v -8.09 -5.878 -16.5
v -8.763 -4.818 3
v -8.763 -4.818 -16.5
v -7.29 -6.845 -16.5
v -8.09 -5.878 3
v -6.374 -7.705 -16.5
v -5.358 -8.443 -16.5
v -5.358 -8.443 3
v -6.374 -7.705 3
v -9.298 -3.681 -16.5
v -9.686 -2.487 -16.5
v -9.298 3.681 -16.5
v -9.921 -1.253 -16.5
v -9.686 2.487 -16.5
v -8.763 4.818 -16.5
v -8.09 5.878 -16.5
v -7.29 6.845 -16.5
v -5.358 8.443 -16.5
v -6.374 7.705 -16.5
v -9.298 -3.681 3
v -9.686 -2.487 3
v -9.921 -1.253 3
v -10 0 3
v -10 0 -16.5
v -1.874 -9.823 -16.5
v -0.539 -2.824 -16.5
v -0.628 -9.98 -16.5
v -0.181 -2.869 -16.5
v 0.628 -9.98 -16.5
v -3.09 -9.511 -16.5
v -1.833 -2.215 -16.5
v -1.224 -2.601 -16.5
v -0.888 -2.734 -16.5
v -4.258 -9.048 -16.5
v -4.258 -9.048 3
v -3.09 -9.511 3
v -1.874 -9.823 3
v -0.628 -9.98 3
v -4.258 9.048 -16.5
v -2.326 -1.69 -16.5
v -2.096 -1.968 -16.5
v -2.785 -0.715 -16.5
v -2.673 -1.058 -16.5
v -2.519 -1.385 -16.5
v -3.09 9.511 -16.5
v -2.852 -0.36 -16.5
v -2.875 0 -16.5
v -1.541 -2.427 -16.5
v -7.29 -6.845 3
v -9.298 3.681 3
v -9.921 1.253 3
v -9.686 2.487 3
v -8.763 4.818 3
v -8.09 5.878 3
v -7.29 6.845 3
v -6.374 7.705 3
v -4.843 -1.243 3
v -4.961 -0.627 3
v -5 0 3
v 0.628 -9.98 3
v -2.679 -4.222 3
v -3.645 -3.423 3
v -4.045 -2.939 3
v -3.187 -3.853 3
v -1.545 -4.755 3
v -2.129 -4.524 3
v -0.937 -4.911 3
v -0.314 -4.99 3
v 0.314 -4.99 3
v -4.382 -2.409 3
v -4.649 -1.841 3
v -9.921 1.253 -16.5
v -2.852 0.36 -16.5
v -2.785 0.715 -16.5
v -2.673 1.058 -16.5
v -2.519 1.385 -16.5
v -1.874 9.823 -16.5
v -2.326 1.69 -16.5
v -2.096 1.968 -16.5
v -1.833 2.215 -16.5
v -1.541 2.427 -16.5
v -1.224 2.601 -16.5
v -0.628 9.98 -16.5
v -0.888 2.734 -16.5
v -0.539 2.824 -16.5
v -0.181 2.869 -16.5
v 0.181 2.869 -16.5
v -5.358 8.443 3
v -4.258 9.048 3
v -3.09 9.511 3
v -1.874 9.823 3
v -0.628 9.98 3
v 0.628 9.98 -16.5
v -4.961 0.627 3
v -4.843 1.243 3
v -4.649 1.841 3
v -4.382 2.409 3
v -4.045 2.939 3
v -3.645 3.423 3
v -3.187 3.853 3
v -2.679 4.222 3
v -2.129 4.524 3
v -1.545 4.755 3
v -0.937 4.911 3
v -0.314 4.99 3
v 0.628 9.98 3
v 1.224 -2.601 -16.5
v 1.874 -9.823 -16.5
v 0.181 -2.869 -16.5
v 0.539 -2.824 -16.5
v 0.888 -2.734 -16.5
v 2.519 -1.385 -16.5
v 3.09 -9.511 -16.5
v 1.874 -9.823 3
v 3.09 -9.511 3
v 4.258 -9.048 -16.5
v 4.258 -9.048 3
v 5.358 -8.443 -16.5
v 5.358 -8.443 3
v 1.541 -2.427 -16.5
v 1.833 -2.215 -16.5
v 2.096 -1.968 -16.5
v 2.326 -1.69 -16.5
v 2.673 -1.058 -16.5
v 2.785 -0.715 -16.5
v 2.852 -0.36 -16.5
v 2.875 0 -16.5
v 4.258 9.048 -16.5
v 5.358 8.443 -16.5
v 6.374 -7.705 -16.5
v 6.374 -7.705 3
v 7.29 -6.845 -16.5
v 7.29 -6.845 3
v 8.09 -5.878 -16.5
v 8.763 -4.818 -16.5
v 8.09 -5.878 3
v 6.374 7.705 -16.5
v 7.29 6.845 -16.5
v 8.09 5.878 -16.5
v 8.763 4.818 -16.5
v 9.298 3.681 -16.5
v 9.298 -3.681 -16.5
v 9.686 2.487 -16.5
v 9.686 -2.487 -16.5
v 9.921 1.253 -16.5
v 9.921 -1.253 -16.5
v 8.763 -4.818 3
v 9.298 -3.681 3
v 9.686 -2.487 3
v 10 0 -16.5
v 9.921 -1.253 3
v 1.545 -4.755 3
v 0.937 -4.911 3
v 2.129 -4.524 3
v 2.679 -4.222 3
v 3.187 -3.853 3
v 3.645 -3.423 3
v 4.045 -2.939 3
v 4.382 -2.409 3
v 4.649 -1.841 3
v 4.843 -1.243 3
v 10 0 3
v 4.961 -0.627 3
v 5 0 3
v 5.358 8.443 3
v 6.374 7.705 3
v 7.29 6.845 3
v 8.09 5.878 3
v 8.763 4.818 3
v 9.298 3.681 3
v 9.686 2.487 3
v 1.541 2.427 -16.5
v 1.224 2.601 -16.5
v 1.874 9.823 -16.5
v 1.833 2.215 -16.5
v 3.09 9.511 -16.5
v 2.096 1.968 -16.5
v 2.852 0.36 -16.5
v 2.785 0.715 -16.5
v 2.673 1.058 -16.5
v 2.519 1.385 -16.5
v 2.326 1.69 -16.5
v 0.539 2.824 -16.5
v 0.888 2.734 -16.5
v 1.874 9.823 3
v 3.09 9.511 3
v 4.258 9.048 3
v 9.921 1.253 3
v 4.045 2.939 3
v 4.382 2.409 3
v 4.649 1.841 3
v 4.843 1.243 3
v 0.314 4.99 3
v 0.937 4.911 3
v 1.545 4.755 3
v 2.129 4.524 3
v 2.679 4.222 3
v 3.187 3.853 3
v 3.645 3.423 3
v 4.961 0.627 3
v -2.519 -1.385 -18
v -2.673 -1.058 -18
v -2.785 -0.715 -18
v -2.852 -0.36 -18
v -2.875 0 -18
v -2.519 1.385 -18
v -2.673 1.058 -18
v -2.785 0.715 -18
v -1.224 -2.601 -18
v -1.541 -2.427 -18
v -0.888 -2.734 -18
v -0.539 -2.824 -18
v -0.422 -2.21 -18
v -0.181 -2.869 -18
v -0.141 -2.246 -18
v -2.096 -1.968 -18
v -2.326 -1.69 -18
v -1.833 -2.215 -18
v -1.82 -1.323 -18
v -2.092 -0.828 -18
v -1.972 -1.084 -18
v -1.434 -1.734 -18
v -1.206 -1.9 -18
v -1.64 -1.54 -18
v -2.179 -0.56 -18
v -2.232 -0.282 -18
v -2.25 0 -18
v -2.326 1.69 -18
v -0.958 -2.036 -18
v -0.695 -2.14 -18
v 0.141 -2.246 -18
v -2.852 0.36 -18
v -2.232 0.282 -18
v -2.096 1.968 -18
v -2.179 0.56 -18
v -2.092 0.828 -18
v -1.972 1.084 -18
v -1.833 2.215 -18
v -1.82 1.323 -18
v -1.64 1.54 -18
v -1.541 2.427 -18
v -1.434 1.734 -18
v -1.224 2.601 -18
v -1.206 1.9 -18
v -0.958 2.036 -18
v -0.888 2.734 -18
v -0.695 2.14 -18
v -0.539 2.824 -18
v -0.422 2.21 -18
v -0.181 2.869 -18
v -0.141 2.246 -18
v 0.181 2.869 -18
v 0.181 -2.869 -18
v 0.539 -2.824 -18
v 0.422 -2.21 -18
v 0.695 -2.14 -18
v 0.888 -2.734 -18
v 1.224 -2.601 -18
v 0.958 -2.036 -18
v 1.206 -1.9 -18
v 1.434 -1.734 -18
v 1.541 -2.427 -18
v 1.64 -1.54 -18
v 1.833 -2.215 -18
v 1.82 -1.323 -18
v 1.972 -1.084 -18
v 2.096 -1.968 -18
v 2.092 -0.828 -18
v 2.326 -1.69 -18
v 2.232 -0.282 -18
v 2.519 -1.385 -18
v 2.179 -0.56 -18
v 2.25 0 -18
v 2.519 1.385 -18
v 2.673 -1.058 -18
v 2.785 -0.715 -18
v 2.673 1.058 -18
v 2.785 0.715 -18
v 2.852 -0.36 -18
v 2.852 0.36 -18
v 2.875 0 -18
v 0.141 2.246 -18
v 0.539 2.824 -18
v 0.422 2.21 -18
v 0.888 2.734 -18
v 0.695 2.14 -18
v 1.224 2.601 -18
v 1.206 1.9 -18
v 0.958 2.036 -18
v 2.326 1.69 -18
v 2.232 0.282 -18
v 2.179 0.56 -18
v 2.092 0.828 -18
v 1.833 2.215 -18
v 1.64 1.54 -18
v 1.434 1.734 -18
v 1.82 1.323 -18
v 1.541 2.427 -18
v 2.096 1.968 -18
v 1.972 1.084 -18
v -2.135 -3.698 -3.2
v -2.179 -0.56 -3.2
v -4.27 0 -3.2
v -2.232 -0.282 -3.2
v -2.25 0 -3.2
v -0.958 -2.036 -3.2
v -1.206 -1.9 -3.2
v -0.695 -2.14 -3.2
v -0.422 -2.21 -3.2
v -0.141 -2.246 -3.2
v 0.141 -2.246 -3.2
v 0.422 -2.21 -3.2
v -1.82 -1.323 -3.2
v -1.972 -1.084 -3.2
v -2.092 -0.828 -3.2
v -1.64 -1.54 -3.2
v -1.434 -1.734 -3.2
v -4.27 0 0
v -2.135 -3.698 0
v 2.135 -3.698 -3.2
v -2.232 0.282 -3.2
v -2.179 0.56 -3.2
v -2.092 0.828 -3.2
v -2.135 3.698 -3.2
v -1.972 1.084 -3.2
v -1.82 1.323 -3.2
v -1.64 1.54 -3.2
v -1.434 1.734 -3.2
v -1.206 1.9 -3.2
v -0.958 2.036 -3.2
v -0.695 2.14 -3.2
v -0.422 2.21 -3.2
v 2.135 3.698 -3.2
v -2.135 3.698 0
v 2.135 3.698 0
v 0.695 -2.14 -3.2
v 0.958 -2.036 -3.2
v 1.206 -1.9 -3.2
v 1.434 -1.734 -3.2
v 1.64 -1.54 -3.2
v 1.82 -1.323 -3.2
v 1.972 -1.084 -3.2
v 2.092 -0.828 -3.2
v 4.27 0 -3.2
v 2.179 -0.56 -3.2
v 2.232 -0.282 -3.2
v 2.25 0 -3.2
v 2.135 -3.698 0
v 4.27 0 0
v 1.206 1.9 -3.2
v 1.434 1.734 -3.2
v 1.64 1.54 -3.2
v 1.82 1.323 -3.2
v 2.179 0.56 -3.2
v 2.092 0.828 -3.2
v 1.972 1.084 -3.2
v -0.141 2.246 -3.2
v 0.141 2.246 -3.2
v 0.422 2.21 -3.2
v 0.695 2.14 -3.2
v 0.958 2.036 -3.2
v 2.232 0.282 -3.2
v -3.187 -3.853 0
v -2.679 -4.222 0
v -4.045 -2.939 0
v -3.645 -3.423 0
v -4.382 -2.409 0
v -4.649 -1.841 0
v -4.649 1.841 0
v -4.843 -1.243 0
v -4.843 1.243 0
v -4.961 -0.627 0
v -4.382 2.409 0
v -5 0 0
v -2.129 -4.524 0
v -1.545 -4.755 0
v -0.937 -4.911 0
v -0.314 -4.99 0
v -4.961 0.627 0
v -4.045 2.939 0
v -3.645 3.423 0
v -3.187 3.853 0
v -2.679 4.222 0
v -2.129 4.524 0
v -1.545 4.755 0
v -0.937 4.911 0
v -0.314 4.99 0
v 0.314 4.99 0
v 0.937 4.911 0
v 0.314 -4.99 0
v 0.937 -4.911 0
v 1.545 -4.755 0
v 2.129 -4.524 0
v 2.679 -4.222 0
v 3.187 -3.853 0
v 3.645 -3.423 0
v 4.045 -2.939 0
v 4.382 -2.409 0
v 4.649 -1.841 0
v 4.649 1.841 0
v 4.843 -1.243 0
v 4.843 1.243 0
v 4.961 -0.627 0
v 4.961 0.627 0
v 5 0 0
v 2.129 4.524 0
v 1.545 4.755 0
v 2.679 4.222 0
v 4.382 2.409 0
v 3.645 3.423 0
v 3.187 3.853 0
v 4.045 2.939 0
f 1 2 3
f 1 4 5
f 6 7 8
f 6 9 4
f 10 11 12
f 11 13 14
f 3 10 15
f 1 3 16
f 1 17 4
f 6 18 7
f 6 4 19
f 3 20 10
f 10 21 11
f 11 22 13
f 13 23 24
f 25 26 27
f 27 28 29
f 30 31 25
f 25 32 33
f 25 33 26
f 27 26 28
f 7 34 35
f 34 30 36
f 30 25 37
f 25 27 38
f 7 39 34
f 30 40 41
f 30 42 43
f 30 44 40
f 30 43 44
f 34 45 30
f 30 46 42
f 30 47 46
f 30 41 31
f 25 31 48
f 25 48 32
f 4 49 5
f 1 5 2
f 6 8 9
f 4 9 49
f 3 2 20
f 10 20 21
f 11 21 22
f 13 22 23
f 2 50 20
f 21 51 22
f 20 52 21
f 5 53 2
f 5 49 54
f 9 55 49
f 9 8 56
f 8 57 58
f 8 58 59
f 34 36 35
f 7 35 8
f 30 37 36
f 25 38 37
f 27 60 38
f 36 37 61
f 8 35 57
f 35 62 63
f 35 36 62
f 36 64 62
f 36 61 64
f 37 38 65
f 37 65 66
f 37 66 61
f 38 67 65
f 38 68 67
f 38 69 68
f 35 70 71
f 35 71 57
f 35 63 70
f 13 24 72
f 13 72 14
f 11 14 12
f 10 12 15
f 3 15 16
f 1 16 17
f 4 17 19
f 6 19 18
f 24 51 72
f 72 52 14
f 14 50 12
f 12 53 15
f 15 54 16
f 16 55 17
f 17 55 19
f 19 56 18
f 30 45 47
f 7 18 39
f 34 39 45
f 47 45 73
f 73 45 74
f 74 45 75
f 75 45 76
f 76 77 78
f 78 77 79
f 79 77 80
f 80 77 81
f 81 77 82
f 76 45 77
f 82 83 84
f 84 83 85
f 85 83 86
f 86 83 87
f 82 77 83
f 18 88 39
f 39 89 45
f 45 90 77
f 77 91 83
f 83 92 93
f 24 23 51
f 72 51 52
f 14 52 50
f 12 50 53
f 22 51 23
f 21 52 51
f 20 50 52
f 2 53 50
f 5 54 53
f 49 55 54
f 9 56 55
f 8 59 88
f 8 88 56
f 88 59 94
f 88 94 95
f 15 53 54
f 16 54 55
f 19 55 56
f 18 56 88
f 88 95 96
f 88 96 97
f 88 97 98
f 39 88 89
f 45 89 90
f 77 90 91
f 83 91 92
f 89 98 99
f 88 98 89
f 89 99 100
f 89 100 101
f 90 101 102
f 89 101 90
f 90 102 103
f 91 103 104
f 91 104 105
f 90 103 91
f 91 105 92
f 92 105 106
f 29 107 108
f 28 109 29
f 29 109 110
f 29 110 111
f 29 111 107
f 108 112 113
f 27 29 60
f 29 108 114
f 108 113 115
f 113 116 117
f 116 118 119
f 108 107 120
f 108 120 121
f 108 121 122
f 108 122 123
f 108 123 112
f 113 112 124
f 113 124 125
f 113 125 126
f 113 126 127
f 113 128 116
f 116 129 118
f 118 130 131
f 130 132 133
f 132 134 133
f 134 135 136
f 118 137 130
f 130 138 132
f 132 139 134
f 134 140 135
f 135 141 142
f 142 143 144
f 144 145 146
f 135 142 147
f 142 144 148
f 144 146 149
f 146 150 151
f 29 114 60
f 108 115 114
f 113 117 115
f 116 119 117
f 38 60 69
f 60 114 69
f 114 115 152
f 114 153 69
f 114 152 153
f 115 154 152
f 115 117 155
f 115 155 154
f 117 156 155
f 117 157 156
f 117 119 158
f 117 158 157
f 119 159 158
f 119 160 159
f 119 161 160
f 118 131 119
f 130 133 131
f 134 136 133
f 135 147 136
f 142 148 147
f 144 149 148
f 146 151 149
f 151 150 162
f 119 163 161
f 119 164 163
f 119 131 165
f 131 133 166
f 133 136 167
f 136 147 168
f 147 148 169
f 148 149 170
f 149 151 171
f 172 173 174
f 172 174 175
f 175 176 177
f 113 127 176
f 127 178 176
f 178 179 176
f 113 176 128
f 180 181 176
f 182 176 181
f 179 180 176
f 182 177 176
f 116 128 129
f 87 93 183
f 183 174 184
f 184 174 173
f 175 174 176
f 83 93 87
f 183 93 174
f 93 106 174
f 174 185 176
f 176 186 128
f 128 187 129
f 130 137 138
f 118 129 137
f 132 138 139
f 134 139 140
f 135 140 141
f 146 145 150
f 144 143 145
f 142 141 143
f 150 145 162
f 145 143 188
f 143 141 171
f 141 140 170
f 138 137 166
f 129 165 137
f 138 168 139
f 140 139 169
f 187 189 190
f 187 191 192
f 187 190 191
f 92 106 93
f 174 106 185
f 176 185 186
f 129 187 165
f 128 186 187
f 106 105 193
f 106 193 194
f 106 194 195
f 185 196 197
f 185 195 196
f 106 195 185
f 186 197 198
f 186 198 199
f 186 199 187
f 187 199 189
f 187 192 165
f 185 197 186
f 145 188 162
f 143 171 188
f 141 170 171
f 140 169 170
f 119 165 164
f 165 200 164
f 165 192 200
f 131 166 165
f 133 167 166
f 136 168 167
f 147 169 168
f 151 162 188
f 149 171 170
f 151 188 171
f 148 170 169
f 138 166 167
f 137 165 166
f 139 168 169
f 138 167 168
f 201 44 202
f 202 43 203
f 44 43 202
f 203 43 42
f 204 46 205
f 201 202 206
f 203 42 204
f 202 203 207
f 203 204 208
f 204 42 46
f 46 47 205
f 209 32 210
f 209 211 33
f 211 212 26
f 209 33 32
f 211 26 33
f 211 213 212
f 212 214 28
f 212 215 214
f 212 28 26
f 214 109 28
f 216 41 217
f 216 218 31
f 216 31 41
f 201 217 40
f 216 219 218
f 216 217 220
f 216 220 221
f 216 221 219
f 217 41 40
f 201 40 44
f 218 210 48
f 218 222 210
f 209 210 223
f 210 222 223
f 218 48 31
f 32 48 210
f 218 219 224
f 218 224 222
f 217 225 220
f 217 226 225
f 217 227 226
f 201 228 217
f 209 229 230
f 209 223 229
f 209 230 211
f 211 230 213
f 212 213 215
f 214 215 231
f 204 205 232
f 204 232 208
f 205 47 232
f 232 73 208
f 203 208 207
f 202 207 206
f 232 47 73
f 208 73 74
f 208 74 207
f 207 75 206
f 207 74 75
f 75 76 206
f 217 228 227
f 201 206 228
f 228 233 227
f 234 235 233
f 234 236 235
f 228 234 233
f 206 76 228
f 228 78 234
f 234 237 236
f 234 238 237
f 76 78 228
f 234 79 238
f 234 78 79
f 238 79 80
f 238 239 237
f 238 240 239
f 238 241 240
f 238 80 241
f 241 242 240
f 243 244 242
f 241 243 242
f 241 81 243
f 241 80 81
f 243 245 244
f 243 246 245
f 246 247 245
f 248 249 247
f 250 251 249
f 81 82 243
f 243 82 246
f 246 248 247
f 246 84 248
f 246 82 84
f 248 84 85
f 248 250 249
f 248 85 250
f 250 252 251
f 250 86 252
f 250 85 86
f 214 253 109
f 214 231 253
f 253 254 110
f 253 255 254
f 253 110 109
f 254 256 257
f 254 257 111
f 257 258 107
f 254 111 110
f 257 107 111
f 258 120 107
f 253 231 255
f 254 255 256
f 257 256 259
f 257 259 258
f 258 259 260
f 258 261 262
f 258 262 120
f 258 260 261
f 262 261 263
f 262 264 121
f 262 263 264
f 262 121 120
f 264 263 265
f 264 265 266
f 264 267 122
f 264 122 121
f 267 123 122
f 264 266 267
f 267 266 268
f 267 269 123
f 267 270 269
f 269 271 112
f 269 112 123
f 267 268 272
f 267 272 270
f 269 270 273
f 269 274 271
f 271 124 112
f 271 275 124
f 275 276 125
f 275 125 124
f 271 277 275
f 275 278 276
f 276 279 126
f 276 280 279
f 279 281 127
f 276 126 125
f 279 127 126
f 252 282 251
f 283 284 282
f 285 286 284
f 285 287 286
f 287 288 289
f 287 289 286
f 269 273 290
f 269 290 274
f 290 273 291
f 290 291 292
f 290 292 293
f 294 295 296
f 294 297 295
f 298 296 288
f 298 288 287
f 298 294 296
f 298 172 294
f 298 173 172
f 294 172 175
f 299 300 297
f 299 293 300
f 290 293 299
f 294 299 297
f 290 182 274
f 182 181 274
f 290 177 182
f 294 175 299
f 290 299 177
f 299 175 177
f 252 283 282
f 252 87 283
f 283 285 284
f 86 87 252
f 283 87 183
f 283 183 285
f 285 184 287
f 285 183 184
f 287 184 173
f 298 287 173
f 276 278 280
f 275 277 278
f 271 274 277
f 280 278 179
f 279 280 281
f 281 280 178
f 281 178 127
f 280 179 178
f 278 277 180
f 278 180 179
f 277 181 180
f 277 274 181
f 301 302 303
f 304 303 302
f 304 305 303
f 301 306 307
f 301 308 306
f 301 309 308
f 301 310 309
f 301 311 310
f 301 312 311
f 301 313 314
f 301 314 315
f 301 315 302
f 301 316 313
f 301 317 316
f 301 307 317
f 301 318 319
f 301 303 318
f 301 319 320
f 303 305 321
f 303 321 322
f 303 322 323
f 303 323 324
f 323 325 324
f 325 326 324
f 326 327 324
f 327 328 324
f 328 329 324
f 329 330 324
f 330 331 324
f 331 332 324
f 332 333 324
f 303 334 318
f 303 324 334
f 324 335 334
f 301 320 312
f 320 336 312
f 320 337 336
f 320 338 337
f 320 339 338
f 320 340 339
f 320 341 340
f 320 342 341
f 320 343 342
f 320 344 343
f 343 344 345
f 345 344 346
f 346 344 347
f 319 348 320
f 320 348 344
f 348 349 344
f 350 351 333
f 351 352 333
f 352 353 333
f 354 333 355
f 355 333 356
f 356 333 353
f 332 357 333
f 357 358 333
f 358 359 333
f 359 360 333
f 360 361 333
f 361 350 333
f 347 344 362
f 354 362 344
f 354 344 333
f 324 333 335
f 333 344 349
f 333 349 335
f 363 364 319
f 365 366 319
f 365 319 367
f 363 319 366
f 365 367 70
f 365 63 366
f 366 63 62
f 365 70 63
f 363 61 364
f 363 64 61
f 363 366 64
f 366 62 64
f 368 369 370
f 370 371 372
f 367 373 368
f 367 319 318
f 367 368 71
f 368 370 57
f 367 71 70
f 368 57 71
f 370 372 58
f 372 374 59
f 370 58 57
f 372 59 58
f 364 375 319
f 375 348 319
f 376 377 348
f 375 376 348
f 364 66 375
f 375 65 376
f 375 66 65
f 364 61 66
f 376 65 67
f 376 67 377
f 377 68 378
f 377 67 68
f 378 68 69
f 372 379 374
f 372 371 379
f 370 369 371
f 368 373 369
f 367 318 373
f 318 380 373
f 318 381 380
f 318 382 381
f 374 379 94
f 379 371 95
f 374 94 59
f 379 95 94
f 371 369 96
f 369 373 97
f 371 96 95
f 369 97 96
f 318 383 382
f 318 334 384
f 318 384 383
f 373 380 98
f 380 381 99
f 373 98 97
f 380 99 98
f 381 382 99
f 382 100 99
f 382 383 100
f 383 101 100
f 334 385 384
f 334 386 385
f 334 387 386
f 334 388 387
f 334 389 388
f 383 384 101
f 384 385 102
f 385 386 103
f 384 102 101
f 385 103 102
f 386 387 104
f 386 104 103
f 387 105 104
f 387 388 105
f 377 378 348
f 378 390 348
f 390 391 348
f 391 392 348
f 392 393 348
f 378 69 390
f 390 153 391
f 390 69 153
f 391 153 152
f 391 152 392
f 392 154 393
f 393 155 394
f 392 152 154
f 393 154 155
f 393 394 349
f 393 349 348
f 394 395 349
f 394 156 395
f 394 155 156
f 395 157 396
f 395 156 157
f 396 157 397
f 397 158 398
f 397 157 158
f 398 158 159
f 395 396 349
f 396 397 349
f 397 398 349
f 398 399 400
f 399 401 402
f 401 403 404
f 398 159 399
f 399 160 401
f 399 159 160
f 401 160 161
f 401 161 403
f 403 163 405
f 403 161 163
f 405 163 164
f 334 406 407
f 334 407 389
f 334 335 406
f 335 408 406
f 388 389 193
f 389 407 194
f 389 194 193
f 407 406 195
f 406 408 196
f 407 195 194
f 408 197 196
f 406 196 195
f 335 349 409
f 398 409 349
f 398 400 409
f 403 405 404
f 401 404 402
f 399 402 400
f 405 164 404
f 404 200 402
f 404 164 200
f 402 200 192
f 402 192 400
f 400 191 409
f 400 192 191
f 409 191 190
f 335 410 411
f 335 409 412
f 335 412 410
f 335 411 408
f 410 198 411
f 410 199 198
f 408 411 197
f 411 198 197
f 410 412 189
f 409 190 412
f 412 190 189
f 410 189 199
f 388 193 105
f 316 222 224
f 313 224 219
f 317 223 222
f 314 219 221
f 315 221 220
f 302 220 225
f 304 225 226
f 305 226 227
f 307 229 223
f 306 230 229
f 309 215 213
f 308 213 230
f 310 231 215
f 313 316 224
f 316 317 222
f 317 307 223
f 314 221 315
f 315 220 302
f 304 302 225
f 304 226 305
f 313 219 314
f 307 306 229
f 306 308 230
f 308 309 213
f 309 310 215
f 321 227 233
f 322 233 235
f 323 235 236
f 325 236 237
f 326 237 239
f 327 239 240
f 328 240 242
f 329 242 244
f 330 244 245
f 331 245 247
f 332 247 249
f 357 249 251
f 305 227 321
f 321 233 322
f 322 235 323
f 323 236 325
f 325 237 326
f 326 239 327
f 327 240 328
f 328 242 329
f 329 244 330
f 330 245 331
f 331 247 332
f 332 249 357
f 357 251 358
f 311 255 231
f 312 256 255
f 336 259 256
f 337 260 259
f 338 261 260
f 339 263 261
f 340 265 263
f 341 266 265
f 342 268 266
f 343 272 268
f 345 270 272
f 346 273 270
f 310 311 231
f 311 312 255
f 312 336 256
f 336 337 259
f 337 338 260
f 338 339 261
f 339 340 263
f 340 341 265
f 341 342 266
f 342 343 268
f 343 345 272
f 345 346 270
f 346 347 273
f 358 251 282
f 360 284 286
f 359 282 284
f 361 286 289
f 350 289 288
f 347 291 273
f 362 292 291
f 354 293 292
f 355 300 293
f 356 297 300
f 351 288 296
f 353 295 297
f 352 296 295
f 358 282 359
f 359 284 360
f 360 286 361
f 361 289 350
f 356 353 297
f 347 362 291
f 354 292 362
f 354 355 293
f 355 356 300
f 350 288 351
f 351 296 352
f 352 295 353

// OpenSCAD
$fn = 50;

difference() {
	union() {
		translate(v = [0, 0, -16.5]) {
			cylinder(h = 19.5, r = 10.0);
		}
		#translate(v = [0, 0, -18.0]) {
			cylinder(h = 18, r = 2.875);
		}
	}
	union() {
		translate(v = [0, 0, 0]) {
			rotate(a = [0, 0, 0]) {
				difference() {
					union() {
						translate(v = [0, 0, -3.2]) {
							linear_extrude(height = 3.2) {
								polygon(points = [[4.2698, 0.0], [2.1349000000000005, 3.697755269078796], [-2.134899999999999, 3.6977552690787965], [-4.2698, 5.228996902999369e-16], [-2.134900000000002, -3.6977552690787956], [2.1348999999999974, -3.697755269078798]]);
							}
						}
					}
					union();
				}
			}
		}
		#cylinder(h = 3, r = 5.0);
		#translate(v = [0, 0, -100.0]) {
			cylinder(h = 200, r = 2.25);
		}
	}
}
